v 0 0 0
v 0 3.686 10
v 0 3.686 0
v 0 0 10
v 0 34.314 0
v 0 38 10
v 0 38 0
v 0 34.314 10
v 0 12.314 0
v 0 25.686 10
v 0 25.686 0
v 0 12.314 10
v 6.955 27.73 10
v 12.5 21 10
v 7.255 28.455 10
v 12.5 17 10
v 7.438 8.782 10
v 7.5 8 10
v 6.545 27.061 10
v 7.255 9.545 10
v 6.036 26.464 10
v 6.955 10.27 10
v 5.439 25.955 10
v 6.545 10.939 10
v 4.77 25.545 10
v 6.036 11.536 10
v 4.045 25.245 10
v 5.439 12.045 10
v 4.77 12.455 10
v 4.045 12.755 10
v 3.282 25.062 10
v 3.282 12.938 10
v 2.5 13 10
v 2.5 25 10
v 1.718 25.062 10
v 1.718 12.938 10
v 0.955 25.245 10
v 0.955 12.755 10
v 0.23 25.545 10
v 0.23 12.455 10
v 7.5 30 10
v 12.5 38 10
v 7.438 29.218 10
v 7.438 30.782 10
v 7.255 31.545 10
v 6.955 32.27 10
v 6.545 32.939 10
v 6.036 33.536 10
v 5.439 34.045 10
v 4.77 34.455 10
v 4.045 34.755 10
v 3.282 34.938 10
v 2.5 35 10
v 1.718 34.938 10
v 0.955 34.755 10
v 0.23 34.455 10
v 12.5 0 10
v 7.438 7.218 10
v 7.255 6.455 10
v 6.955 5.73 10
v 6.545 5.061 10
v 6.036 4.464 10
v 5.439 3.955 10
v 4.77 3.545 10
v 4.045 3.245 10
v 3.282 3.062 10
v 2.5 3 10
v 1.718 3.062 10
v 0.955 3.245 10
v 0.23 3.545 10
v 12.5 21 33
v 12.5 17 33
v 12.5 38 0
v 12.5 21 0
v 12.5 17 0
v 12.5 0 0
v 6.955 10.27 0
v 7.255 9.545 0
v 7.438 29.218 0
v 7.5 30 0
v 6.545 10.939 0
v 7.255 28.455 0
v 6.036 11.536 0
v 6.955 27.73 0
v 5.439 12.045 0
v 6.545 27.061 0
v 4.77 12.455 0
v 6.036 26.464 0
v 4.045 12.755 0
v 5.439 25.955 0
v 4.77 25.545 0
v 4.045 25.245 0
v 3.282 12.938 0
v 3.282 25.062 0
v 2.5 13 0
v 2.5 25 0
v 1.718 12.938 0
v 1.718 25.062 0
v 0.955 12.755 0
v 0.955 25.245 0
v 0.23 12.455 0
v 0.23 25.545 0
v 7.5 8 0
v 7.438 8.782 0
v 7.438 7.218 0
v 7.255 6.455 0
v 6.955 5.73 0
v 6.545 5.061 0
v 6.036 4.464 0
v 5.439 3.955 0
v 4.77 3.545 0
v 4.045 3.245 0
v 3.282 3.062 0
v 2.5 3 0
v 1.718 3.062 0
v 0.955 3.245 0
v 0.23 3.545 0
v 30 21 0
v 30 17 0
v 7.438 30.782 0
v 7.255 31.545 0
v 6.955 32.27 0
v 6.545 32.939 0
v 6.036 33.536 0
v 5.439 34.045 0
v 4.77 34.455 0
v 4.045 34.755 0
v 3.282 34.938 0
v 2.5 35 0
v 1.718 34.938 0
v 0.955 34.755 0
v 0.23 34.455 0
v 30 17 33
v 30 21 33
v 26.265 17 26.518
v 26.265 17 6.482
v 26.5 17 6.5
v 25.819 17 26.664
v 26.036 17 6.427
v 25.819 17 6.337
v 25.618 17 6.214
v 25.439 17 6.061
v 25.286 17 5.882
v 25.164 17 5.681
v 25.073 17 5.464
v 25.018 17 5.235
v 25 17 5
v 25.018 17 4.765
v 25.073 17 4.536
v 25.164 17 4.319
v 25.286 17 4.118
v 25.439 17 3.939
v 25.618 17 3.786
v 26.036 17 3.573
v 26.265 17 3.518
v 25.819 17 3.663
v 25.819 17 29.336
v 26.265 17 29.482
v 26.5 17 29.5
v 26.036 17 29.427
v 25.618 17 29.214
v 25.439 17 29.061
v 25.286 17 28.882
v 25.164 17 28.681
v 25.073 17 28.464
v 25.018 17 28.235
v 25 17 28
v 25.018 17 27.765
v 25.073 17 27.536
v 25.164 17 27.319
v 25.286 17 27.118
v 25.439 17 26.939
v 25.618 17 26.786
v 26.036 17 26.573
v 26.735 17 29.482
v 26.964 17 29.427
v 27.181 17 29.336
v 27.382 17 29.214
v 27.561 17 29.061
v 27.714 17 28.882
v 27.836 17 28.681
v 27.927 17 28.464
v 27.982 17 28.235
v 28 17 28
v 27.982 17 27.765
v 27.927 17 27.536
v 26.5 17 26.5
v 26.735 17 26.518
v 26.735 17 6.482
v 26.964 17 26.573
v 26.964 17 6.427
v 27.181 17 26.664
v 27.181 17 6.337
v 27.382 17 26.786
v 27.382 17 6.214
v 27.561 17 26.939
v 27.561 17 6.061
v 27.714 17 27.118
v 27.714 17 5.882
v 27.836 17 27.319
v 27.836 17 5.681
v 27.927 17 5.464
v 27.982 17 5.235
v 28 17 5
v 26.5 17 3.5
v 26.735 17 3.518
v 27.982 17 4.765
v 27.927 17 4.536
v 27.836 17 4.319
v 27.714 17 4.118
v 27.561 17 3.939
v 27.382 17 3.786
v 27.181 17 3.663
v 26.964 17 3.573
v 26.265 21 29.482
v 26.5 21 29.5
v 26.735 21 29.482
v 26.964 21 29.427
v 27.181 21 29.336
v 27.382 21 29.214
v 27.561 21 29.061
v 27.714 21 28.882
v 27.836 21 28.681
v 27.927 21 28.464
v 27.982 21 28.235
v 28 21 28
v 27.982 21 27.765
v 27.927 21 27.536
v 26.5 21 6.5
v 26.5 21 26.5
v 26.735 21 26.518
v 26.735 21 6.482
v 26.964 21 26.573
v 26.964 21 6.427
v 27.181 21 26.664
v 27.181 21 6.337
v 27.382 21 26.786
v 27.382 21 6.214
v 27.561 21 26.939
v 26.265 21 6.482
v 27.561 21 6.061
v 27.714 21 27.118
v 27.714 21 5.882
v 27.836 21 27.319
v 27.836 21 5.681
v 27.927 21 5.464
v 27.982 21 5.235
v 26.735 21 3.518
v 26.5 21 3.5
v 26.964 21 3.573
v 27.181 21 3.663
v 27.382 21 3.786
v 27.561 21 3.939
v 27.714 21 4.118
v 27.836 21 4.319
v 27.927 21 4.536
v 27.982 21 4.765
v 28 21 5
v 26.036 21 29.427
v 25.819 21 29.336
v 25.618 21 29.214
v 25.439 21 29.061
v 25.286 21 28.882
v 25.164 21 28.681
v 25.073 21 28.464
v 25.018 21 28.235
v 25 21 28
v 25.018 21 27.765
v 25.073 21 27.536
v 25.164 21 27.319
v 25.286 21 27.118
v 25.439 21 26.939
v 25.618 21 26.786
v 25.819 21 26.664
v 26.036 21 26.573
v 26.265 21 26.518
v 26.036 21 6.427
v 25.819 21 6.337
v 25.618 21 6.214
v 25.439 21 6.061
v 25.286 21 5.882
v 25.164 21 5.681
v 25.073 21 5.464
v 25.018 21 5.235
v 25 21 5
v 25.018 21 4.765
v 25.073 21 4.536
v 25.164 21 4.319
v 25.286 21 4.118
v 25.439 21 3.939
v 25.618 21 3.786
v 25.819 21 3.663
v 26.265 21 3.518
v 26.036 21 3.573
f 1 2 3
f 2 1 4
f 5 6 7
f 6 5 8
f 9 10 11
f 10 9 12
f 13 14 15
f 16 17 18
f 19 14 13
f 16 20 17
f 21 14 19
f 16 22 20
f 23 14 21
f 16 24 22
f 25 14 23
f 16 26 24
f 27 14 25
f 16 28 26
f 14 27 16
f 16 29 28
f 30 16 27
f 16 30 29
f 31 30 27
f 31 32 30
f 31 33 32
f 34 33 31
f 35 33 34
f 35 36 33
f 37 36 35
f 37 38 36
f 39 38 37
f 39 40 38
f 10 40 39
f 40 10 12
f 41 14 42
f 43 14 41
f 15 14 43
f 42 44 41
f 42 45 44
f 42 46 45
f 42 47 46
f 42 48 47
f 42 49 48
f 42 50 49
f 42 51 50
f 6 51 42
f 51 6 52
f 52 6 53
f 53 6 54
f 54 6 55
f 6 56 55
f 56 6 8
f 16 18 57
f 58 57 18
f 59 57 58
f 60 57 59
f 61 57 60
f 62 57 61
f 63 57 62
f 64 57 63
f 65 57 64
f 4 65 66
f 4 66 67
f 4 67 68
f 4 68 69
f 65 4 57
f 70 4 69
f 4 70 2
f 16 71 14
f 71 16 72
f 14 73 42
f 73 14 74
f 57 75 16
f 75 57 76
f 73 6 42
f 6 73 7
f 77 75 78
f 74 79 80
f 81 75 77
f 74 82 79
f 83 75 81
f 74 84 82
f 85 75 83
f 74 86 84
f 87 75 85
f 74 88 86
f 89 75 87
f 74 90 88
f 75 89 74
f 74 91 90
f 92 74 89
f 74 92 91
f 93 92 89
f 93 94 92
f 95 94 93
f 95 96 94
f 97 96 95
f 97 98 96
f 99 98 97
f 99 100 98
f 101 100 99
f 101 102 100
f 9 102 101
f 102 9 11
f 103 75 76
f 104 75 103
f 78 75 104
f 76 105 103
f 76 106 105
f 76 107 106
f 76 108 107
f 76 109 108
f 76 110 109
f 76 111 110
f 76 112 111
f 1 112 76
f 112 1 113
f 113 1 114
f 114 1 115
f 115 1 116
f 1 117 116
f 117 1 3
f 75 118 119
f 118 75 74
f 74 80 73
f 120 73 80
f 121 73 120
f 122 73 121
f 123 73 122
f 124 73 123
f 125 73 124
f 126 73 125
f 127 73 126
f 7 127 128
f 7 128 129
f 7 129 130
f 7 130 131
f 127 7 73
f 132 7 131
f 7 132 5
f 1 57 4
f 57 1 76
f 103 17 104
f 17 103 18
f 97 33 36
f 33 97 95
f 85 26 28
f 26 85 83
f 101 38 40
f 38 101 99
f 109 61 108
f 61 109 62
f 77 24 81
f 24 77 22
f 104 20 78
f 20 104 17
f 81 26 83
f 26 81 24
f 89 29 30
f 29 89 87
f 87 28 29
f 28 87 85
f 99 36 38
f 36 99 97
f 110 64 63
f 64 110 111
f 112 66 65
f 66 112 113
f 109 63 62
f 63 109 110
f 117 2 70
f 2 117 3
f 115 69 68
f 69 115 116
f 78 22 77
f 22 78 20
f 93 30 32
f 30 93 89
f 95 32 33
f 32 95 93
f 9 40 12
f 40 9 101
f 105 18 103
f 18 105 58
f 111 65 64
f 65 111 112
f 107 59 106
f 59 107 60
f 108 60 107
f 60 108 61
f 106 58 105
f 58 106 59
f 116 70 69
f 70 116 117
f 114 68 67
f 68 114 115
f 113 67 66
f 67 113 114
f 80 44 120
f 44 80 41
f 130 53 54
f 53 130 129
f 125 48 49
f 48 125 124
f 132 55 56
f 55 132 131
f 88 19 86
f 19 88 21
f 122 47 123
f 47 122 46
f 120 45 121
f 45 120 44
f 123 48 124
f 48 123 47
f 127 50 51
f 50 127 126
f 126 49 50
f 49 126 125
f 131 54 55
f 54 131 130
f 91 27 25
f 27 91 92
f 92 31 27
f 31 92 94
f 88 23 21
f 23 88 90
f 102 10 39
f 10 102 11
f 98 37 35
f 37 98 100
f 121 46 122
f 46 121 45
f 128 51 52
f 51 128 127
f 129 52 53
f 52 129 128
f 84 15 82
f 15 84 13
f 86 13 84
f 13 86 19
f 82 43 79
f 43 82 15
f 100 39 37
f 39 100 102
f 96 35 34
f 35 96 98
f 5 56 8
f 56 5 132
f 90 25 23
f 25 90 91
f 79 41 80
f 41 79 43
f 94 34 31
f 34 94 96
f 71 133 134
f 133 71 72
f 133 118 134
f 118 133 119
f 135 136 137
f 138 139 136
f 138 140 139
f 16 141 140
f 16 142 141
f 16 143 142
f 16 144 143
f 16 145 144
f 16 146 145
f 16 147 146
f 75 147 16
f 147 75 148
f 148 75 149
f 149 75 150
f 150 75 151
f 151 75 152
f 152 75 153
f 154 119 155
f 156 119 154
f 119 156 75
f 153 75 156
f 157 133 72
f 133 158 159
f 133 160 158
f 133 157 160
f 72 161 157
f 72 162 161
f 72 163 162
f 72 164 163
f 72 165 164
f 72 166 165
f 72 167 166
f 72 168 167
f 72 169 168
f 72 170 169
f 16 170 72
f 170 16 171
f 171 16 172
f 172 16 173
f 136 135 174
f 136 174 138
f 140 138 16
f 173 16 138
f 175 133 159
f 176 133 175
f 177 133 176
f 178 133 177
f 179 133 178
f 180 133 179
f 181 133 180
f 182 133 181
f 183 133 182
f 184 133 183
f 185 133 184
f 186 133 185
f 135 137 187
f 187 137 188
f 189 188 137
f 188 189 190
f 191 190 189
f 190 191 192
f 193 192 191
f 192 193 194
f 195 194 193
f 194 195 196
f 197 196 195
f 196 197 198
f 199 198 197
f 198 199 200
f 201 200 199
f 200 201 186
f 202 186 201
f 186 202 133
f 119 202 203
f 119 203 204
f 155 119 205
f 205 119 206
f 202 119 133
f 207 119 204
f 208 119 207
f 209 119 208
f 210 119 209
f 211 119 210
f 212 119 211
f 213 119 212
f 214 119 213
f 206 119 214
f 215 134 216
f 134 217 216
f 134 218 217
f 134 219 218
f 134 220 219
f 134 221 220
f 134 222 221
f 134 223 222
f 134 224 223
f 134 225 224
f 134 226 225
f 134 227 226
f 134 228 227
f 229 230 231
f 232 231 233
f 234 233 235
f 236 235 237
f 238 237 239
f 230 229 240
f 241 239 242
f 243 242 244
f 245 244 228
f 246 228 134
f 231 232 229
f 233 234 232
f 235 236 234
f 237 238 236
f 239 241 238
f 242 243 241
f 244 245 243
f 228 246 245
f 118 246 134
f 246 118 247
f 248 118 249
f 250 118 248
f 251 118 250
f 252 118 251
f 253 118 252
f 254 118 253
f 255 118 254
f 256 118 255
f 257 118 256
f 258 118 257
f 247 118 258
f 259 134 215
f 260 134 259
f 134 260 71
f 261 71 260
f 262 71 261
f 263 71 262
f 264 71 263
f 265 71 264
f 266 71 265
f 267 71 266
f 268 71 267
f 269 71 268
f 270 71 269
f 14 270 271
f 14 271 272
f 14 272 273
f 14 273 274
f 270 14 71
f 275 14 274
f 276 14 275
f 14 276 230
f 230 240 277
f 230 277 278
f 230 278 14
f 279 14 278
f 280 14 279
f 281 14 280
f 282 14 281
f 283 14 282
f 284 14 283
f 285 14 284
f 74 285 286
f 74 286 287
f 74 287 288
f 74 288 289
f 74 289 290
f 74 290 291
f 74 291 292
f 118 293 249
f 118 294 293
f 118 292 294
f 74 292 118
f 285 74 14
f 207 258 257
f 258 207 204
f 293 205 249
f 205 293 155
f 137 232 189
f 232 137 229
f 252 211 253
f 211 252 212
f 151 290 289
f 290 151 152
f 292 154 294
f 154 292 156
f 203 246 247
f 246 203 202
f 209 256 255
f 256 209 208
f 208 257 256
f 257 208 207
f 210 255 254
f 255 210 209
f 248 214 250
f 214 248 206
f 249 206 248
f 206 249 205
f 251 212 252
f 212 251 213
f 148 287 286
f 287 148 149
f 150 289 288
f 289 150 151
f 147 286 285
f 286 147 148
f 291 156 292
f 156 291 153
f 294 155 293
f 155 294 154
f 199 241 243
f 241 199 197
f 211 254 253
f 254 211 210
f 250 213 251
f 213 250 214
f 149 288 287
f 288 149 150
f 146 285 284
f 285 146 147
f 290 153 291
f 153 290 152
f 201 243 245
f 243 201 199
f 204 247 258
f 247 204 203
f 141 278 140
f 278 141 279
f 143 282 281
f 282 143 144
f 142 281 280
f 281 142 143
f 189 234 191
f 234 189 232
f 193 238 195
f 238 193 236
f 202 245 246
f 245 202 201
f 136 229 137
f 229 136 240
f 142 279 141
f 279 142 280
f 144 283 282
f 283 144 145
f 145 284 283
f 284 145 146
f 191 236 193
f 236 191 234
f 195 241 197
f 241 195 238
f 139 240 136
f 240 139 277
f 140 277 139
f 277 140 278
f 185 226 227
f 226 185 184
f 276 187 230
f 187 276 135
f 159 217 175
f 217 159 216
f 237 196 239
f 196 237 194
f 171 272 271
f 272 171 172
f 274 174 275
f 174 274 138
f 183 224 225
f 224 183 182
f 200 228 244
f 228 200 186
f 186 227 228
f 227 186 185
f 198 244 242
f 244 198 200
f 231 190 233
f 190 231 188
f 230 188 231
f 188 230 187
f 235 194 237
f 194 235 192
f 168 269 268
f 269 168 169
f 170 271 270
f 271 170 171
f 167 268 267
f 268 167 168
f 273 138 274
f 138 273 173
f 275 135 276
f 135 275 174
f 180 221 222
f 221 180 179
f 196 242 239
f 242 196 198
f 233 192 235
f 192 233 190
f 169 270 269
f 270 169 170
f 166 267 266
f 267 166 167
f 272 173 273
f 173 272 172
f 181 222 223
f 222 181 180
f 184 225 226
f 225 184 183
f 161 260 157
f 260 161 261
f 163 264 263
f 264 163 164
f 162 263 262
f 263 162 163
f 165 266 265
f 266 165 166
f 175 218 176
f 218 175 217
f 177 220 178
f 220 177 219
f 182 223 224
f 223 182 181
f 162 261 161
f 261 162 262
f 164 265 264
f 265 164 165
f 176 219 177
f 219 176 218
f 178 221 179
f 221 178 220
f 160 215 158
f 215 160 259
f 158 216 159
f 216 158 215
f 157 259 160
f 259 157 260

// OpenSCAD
axis_rad = 10 / 2;
block_height = 3 + (22 + axis_rad + axis_rad) + 3;
block_thickness = 10;
rod_displacement = 2.5;
block_width = axis_rad + rod_displacement + 5;
total_width = 30;
lip_offset = 15;
lip_thickness = 4;
lip_height = 33;
lip_screw_hole_x = 14;
lip_screw_hole_spacing = 5;
m3_rad = 3 / 2;

$fn = 40;

// Main block to fit arround the two threaded rods.
difference()
{
    cube([block_width, block_height, block_thickness]);
    
    // Bottom threaded-rod cutout.
    translate([-rod_displacement + axis_rad, 3 + axis_rad, 0])
    {
        cylinder(h = block_thickness, r = axis_rad);
    }
    
    // Top threaded-rod cutout.
    translate([-rod_displacement + axis_rad, block_height - 3 - axis_rad, 0])
    {
        cylinder(h = block_thickness, r = axis_rad);
    }
}

// Belt attachment lid.
translate([block_width, (block_height - lip_thickness) / 2, 0])
{
    difference()
    {
        cube([total_width - block_width, lip_thickness, lip_height]);
        
        // Hole for screwing chain to, low.
        translate([lip_screw_hole_x, 0, lip_screw_hole_spacing])
        {
            rotate(a = [-90, 0, 0])
            {
                cylinder(h = block_thickness, r = m3_rad);
            }
        }

        // Hole for screwing chain to, high.
        translate([lip_screw_hole_x, 0, lip_height - lip_screw_hole_spacing])
        {
            rotate(a = [-90, 0, 0])
            {
                cylinder(h = block_thickness, r = m3_rad);
            }
        }

    }
}
